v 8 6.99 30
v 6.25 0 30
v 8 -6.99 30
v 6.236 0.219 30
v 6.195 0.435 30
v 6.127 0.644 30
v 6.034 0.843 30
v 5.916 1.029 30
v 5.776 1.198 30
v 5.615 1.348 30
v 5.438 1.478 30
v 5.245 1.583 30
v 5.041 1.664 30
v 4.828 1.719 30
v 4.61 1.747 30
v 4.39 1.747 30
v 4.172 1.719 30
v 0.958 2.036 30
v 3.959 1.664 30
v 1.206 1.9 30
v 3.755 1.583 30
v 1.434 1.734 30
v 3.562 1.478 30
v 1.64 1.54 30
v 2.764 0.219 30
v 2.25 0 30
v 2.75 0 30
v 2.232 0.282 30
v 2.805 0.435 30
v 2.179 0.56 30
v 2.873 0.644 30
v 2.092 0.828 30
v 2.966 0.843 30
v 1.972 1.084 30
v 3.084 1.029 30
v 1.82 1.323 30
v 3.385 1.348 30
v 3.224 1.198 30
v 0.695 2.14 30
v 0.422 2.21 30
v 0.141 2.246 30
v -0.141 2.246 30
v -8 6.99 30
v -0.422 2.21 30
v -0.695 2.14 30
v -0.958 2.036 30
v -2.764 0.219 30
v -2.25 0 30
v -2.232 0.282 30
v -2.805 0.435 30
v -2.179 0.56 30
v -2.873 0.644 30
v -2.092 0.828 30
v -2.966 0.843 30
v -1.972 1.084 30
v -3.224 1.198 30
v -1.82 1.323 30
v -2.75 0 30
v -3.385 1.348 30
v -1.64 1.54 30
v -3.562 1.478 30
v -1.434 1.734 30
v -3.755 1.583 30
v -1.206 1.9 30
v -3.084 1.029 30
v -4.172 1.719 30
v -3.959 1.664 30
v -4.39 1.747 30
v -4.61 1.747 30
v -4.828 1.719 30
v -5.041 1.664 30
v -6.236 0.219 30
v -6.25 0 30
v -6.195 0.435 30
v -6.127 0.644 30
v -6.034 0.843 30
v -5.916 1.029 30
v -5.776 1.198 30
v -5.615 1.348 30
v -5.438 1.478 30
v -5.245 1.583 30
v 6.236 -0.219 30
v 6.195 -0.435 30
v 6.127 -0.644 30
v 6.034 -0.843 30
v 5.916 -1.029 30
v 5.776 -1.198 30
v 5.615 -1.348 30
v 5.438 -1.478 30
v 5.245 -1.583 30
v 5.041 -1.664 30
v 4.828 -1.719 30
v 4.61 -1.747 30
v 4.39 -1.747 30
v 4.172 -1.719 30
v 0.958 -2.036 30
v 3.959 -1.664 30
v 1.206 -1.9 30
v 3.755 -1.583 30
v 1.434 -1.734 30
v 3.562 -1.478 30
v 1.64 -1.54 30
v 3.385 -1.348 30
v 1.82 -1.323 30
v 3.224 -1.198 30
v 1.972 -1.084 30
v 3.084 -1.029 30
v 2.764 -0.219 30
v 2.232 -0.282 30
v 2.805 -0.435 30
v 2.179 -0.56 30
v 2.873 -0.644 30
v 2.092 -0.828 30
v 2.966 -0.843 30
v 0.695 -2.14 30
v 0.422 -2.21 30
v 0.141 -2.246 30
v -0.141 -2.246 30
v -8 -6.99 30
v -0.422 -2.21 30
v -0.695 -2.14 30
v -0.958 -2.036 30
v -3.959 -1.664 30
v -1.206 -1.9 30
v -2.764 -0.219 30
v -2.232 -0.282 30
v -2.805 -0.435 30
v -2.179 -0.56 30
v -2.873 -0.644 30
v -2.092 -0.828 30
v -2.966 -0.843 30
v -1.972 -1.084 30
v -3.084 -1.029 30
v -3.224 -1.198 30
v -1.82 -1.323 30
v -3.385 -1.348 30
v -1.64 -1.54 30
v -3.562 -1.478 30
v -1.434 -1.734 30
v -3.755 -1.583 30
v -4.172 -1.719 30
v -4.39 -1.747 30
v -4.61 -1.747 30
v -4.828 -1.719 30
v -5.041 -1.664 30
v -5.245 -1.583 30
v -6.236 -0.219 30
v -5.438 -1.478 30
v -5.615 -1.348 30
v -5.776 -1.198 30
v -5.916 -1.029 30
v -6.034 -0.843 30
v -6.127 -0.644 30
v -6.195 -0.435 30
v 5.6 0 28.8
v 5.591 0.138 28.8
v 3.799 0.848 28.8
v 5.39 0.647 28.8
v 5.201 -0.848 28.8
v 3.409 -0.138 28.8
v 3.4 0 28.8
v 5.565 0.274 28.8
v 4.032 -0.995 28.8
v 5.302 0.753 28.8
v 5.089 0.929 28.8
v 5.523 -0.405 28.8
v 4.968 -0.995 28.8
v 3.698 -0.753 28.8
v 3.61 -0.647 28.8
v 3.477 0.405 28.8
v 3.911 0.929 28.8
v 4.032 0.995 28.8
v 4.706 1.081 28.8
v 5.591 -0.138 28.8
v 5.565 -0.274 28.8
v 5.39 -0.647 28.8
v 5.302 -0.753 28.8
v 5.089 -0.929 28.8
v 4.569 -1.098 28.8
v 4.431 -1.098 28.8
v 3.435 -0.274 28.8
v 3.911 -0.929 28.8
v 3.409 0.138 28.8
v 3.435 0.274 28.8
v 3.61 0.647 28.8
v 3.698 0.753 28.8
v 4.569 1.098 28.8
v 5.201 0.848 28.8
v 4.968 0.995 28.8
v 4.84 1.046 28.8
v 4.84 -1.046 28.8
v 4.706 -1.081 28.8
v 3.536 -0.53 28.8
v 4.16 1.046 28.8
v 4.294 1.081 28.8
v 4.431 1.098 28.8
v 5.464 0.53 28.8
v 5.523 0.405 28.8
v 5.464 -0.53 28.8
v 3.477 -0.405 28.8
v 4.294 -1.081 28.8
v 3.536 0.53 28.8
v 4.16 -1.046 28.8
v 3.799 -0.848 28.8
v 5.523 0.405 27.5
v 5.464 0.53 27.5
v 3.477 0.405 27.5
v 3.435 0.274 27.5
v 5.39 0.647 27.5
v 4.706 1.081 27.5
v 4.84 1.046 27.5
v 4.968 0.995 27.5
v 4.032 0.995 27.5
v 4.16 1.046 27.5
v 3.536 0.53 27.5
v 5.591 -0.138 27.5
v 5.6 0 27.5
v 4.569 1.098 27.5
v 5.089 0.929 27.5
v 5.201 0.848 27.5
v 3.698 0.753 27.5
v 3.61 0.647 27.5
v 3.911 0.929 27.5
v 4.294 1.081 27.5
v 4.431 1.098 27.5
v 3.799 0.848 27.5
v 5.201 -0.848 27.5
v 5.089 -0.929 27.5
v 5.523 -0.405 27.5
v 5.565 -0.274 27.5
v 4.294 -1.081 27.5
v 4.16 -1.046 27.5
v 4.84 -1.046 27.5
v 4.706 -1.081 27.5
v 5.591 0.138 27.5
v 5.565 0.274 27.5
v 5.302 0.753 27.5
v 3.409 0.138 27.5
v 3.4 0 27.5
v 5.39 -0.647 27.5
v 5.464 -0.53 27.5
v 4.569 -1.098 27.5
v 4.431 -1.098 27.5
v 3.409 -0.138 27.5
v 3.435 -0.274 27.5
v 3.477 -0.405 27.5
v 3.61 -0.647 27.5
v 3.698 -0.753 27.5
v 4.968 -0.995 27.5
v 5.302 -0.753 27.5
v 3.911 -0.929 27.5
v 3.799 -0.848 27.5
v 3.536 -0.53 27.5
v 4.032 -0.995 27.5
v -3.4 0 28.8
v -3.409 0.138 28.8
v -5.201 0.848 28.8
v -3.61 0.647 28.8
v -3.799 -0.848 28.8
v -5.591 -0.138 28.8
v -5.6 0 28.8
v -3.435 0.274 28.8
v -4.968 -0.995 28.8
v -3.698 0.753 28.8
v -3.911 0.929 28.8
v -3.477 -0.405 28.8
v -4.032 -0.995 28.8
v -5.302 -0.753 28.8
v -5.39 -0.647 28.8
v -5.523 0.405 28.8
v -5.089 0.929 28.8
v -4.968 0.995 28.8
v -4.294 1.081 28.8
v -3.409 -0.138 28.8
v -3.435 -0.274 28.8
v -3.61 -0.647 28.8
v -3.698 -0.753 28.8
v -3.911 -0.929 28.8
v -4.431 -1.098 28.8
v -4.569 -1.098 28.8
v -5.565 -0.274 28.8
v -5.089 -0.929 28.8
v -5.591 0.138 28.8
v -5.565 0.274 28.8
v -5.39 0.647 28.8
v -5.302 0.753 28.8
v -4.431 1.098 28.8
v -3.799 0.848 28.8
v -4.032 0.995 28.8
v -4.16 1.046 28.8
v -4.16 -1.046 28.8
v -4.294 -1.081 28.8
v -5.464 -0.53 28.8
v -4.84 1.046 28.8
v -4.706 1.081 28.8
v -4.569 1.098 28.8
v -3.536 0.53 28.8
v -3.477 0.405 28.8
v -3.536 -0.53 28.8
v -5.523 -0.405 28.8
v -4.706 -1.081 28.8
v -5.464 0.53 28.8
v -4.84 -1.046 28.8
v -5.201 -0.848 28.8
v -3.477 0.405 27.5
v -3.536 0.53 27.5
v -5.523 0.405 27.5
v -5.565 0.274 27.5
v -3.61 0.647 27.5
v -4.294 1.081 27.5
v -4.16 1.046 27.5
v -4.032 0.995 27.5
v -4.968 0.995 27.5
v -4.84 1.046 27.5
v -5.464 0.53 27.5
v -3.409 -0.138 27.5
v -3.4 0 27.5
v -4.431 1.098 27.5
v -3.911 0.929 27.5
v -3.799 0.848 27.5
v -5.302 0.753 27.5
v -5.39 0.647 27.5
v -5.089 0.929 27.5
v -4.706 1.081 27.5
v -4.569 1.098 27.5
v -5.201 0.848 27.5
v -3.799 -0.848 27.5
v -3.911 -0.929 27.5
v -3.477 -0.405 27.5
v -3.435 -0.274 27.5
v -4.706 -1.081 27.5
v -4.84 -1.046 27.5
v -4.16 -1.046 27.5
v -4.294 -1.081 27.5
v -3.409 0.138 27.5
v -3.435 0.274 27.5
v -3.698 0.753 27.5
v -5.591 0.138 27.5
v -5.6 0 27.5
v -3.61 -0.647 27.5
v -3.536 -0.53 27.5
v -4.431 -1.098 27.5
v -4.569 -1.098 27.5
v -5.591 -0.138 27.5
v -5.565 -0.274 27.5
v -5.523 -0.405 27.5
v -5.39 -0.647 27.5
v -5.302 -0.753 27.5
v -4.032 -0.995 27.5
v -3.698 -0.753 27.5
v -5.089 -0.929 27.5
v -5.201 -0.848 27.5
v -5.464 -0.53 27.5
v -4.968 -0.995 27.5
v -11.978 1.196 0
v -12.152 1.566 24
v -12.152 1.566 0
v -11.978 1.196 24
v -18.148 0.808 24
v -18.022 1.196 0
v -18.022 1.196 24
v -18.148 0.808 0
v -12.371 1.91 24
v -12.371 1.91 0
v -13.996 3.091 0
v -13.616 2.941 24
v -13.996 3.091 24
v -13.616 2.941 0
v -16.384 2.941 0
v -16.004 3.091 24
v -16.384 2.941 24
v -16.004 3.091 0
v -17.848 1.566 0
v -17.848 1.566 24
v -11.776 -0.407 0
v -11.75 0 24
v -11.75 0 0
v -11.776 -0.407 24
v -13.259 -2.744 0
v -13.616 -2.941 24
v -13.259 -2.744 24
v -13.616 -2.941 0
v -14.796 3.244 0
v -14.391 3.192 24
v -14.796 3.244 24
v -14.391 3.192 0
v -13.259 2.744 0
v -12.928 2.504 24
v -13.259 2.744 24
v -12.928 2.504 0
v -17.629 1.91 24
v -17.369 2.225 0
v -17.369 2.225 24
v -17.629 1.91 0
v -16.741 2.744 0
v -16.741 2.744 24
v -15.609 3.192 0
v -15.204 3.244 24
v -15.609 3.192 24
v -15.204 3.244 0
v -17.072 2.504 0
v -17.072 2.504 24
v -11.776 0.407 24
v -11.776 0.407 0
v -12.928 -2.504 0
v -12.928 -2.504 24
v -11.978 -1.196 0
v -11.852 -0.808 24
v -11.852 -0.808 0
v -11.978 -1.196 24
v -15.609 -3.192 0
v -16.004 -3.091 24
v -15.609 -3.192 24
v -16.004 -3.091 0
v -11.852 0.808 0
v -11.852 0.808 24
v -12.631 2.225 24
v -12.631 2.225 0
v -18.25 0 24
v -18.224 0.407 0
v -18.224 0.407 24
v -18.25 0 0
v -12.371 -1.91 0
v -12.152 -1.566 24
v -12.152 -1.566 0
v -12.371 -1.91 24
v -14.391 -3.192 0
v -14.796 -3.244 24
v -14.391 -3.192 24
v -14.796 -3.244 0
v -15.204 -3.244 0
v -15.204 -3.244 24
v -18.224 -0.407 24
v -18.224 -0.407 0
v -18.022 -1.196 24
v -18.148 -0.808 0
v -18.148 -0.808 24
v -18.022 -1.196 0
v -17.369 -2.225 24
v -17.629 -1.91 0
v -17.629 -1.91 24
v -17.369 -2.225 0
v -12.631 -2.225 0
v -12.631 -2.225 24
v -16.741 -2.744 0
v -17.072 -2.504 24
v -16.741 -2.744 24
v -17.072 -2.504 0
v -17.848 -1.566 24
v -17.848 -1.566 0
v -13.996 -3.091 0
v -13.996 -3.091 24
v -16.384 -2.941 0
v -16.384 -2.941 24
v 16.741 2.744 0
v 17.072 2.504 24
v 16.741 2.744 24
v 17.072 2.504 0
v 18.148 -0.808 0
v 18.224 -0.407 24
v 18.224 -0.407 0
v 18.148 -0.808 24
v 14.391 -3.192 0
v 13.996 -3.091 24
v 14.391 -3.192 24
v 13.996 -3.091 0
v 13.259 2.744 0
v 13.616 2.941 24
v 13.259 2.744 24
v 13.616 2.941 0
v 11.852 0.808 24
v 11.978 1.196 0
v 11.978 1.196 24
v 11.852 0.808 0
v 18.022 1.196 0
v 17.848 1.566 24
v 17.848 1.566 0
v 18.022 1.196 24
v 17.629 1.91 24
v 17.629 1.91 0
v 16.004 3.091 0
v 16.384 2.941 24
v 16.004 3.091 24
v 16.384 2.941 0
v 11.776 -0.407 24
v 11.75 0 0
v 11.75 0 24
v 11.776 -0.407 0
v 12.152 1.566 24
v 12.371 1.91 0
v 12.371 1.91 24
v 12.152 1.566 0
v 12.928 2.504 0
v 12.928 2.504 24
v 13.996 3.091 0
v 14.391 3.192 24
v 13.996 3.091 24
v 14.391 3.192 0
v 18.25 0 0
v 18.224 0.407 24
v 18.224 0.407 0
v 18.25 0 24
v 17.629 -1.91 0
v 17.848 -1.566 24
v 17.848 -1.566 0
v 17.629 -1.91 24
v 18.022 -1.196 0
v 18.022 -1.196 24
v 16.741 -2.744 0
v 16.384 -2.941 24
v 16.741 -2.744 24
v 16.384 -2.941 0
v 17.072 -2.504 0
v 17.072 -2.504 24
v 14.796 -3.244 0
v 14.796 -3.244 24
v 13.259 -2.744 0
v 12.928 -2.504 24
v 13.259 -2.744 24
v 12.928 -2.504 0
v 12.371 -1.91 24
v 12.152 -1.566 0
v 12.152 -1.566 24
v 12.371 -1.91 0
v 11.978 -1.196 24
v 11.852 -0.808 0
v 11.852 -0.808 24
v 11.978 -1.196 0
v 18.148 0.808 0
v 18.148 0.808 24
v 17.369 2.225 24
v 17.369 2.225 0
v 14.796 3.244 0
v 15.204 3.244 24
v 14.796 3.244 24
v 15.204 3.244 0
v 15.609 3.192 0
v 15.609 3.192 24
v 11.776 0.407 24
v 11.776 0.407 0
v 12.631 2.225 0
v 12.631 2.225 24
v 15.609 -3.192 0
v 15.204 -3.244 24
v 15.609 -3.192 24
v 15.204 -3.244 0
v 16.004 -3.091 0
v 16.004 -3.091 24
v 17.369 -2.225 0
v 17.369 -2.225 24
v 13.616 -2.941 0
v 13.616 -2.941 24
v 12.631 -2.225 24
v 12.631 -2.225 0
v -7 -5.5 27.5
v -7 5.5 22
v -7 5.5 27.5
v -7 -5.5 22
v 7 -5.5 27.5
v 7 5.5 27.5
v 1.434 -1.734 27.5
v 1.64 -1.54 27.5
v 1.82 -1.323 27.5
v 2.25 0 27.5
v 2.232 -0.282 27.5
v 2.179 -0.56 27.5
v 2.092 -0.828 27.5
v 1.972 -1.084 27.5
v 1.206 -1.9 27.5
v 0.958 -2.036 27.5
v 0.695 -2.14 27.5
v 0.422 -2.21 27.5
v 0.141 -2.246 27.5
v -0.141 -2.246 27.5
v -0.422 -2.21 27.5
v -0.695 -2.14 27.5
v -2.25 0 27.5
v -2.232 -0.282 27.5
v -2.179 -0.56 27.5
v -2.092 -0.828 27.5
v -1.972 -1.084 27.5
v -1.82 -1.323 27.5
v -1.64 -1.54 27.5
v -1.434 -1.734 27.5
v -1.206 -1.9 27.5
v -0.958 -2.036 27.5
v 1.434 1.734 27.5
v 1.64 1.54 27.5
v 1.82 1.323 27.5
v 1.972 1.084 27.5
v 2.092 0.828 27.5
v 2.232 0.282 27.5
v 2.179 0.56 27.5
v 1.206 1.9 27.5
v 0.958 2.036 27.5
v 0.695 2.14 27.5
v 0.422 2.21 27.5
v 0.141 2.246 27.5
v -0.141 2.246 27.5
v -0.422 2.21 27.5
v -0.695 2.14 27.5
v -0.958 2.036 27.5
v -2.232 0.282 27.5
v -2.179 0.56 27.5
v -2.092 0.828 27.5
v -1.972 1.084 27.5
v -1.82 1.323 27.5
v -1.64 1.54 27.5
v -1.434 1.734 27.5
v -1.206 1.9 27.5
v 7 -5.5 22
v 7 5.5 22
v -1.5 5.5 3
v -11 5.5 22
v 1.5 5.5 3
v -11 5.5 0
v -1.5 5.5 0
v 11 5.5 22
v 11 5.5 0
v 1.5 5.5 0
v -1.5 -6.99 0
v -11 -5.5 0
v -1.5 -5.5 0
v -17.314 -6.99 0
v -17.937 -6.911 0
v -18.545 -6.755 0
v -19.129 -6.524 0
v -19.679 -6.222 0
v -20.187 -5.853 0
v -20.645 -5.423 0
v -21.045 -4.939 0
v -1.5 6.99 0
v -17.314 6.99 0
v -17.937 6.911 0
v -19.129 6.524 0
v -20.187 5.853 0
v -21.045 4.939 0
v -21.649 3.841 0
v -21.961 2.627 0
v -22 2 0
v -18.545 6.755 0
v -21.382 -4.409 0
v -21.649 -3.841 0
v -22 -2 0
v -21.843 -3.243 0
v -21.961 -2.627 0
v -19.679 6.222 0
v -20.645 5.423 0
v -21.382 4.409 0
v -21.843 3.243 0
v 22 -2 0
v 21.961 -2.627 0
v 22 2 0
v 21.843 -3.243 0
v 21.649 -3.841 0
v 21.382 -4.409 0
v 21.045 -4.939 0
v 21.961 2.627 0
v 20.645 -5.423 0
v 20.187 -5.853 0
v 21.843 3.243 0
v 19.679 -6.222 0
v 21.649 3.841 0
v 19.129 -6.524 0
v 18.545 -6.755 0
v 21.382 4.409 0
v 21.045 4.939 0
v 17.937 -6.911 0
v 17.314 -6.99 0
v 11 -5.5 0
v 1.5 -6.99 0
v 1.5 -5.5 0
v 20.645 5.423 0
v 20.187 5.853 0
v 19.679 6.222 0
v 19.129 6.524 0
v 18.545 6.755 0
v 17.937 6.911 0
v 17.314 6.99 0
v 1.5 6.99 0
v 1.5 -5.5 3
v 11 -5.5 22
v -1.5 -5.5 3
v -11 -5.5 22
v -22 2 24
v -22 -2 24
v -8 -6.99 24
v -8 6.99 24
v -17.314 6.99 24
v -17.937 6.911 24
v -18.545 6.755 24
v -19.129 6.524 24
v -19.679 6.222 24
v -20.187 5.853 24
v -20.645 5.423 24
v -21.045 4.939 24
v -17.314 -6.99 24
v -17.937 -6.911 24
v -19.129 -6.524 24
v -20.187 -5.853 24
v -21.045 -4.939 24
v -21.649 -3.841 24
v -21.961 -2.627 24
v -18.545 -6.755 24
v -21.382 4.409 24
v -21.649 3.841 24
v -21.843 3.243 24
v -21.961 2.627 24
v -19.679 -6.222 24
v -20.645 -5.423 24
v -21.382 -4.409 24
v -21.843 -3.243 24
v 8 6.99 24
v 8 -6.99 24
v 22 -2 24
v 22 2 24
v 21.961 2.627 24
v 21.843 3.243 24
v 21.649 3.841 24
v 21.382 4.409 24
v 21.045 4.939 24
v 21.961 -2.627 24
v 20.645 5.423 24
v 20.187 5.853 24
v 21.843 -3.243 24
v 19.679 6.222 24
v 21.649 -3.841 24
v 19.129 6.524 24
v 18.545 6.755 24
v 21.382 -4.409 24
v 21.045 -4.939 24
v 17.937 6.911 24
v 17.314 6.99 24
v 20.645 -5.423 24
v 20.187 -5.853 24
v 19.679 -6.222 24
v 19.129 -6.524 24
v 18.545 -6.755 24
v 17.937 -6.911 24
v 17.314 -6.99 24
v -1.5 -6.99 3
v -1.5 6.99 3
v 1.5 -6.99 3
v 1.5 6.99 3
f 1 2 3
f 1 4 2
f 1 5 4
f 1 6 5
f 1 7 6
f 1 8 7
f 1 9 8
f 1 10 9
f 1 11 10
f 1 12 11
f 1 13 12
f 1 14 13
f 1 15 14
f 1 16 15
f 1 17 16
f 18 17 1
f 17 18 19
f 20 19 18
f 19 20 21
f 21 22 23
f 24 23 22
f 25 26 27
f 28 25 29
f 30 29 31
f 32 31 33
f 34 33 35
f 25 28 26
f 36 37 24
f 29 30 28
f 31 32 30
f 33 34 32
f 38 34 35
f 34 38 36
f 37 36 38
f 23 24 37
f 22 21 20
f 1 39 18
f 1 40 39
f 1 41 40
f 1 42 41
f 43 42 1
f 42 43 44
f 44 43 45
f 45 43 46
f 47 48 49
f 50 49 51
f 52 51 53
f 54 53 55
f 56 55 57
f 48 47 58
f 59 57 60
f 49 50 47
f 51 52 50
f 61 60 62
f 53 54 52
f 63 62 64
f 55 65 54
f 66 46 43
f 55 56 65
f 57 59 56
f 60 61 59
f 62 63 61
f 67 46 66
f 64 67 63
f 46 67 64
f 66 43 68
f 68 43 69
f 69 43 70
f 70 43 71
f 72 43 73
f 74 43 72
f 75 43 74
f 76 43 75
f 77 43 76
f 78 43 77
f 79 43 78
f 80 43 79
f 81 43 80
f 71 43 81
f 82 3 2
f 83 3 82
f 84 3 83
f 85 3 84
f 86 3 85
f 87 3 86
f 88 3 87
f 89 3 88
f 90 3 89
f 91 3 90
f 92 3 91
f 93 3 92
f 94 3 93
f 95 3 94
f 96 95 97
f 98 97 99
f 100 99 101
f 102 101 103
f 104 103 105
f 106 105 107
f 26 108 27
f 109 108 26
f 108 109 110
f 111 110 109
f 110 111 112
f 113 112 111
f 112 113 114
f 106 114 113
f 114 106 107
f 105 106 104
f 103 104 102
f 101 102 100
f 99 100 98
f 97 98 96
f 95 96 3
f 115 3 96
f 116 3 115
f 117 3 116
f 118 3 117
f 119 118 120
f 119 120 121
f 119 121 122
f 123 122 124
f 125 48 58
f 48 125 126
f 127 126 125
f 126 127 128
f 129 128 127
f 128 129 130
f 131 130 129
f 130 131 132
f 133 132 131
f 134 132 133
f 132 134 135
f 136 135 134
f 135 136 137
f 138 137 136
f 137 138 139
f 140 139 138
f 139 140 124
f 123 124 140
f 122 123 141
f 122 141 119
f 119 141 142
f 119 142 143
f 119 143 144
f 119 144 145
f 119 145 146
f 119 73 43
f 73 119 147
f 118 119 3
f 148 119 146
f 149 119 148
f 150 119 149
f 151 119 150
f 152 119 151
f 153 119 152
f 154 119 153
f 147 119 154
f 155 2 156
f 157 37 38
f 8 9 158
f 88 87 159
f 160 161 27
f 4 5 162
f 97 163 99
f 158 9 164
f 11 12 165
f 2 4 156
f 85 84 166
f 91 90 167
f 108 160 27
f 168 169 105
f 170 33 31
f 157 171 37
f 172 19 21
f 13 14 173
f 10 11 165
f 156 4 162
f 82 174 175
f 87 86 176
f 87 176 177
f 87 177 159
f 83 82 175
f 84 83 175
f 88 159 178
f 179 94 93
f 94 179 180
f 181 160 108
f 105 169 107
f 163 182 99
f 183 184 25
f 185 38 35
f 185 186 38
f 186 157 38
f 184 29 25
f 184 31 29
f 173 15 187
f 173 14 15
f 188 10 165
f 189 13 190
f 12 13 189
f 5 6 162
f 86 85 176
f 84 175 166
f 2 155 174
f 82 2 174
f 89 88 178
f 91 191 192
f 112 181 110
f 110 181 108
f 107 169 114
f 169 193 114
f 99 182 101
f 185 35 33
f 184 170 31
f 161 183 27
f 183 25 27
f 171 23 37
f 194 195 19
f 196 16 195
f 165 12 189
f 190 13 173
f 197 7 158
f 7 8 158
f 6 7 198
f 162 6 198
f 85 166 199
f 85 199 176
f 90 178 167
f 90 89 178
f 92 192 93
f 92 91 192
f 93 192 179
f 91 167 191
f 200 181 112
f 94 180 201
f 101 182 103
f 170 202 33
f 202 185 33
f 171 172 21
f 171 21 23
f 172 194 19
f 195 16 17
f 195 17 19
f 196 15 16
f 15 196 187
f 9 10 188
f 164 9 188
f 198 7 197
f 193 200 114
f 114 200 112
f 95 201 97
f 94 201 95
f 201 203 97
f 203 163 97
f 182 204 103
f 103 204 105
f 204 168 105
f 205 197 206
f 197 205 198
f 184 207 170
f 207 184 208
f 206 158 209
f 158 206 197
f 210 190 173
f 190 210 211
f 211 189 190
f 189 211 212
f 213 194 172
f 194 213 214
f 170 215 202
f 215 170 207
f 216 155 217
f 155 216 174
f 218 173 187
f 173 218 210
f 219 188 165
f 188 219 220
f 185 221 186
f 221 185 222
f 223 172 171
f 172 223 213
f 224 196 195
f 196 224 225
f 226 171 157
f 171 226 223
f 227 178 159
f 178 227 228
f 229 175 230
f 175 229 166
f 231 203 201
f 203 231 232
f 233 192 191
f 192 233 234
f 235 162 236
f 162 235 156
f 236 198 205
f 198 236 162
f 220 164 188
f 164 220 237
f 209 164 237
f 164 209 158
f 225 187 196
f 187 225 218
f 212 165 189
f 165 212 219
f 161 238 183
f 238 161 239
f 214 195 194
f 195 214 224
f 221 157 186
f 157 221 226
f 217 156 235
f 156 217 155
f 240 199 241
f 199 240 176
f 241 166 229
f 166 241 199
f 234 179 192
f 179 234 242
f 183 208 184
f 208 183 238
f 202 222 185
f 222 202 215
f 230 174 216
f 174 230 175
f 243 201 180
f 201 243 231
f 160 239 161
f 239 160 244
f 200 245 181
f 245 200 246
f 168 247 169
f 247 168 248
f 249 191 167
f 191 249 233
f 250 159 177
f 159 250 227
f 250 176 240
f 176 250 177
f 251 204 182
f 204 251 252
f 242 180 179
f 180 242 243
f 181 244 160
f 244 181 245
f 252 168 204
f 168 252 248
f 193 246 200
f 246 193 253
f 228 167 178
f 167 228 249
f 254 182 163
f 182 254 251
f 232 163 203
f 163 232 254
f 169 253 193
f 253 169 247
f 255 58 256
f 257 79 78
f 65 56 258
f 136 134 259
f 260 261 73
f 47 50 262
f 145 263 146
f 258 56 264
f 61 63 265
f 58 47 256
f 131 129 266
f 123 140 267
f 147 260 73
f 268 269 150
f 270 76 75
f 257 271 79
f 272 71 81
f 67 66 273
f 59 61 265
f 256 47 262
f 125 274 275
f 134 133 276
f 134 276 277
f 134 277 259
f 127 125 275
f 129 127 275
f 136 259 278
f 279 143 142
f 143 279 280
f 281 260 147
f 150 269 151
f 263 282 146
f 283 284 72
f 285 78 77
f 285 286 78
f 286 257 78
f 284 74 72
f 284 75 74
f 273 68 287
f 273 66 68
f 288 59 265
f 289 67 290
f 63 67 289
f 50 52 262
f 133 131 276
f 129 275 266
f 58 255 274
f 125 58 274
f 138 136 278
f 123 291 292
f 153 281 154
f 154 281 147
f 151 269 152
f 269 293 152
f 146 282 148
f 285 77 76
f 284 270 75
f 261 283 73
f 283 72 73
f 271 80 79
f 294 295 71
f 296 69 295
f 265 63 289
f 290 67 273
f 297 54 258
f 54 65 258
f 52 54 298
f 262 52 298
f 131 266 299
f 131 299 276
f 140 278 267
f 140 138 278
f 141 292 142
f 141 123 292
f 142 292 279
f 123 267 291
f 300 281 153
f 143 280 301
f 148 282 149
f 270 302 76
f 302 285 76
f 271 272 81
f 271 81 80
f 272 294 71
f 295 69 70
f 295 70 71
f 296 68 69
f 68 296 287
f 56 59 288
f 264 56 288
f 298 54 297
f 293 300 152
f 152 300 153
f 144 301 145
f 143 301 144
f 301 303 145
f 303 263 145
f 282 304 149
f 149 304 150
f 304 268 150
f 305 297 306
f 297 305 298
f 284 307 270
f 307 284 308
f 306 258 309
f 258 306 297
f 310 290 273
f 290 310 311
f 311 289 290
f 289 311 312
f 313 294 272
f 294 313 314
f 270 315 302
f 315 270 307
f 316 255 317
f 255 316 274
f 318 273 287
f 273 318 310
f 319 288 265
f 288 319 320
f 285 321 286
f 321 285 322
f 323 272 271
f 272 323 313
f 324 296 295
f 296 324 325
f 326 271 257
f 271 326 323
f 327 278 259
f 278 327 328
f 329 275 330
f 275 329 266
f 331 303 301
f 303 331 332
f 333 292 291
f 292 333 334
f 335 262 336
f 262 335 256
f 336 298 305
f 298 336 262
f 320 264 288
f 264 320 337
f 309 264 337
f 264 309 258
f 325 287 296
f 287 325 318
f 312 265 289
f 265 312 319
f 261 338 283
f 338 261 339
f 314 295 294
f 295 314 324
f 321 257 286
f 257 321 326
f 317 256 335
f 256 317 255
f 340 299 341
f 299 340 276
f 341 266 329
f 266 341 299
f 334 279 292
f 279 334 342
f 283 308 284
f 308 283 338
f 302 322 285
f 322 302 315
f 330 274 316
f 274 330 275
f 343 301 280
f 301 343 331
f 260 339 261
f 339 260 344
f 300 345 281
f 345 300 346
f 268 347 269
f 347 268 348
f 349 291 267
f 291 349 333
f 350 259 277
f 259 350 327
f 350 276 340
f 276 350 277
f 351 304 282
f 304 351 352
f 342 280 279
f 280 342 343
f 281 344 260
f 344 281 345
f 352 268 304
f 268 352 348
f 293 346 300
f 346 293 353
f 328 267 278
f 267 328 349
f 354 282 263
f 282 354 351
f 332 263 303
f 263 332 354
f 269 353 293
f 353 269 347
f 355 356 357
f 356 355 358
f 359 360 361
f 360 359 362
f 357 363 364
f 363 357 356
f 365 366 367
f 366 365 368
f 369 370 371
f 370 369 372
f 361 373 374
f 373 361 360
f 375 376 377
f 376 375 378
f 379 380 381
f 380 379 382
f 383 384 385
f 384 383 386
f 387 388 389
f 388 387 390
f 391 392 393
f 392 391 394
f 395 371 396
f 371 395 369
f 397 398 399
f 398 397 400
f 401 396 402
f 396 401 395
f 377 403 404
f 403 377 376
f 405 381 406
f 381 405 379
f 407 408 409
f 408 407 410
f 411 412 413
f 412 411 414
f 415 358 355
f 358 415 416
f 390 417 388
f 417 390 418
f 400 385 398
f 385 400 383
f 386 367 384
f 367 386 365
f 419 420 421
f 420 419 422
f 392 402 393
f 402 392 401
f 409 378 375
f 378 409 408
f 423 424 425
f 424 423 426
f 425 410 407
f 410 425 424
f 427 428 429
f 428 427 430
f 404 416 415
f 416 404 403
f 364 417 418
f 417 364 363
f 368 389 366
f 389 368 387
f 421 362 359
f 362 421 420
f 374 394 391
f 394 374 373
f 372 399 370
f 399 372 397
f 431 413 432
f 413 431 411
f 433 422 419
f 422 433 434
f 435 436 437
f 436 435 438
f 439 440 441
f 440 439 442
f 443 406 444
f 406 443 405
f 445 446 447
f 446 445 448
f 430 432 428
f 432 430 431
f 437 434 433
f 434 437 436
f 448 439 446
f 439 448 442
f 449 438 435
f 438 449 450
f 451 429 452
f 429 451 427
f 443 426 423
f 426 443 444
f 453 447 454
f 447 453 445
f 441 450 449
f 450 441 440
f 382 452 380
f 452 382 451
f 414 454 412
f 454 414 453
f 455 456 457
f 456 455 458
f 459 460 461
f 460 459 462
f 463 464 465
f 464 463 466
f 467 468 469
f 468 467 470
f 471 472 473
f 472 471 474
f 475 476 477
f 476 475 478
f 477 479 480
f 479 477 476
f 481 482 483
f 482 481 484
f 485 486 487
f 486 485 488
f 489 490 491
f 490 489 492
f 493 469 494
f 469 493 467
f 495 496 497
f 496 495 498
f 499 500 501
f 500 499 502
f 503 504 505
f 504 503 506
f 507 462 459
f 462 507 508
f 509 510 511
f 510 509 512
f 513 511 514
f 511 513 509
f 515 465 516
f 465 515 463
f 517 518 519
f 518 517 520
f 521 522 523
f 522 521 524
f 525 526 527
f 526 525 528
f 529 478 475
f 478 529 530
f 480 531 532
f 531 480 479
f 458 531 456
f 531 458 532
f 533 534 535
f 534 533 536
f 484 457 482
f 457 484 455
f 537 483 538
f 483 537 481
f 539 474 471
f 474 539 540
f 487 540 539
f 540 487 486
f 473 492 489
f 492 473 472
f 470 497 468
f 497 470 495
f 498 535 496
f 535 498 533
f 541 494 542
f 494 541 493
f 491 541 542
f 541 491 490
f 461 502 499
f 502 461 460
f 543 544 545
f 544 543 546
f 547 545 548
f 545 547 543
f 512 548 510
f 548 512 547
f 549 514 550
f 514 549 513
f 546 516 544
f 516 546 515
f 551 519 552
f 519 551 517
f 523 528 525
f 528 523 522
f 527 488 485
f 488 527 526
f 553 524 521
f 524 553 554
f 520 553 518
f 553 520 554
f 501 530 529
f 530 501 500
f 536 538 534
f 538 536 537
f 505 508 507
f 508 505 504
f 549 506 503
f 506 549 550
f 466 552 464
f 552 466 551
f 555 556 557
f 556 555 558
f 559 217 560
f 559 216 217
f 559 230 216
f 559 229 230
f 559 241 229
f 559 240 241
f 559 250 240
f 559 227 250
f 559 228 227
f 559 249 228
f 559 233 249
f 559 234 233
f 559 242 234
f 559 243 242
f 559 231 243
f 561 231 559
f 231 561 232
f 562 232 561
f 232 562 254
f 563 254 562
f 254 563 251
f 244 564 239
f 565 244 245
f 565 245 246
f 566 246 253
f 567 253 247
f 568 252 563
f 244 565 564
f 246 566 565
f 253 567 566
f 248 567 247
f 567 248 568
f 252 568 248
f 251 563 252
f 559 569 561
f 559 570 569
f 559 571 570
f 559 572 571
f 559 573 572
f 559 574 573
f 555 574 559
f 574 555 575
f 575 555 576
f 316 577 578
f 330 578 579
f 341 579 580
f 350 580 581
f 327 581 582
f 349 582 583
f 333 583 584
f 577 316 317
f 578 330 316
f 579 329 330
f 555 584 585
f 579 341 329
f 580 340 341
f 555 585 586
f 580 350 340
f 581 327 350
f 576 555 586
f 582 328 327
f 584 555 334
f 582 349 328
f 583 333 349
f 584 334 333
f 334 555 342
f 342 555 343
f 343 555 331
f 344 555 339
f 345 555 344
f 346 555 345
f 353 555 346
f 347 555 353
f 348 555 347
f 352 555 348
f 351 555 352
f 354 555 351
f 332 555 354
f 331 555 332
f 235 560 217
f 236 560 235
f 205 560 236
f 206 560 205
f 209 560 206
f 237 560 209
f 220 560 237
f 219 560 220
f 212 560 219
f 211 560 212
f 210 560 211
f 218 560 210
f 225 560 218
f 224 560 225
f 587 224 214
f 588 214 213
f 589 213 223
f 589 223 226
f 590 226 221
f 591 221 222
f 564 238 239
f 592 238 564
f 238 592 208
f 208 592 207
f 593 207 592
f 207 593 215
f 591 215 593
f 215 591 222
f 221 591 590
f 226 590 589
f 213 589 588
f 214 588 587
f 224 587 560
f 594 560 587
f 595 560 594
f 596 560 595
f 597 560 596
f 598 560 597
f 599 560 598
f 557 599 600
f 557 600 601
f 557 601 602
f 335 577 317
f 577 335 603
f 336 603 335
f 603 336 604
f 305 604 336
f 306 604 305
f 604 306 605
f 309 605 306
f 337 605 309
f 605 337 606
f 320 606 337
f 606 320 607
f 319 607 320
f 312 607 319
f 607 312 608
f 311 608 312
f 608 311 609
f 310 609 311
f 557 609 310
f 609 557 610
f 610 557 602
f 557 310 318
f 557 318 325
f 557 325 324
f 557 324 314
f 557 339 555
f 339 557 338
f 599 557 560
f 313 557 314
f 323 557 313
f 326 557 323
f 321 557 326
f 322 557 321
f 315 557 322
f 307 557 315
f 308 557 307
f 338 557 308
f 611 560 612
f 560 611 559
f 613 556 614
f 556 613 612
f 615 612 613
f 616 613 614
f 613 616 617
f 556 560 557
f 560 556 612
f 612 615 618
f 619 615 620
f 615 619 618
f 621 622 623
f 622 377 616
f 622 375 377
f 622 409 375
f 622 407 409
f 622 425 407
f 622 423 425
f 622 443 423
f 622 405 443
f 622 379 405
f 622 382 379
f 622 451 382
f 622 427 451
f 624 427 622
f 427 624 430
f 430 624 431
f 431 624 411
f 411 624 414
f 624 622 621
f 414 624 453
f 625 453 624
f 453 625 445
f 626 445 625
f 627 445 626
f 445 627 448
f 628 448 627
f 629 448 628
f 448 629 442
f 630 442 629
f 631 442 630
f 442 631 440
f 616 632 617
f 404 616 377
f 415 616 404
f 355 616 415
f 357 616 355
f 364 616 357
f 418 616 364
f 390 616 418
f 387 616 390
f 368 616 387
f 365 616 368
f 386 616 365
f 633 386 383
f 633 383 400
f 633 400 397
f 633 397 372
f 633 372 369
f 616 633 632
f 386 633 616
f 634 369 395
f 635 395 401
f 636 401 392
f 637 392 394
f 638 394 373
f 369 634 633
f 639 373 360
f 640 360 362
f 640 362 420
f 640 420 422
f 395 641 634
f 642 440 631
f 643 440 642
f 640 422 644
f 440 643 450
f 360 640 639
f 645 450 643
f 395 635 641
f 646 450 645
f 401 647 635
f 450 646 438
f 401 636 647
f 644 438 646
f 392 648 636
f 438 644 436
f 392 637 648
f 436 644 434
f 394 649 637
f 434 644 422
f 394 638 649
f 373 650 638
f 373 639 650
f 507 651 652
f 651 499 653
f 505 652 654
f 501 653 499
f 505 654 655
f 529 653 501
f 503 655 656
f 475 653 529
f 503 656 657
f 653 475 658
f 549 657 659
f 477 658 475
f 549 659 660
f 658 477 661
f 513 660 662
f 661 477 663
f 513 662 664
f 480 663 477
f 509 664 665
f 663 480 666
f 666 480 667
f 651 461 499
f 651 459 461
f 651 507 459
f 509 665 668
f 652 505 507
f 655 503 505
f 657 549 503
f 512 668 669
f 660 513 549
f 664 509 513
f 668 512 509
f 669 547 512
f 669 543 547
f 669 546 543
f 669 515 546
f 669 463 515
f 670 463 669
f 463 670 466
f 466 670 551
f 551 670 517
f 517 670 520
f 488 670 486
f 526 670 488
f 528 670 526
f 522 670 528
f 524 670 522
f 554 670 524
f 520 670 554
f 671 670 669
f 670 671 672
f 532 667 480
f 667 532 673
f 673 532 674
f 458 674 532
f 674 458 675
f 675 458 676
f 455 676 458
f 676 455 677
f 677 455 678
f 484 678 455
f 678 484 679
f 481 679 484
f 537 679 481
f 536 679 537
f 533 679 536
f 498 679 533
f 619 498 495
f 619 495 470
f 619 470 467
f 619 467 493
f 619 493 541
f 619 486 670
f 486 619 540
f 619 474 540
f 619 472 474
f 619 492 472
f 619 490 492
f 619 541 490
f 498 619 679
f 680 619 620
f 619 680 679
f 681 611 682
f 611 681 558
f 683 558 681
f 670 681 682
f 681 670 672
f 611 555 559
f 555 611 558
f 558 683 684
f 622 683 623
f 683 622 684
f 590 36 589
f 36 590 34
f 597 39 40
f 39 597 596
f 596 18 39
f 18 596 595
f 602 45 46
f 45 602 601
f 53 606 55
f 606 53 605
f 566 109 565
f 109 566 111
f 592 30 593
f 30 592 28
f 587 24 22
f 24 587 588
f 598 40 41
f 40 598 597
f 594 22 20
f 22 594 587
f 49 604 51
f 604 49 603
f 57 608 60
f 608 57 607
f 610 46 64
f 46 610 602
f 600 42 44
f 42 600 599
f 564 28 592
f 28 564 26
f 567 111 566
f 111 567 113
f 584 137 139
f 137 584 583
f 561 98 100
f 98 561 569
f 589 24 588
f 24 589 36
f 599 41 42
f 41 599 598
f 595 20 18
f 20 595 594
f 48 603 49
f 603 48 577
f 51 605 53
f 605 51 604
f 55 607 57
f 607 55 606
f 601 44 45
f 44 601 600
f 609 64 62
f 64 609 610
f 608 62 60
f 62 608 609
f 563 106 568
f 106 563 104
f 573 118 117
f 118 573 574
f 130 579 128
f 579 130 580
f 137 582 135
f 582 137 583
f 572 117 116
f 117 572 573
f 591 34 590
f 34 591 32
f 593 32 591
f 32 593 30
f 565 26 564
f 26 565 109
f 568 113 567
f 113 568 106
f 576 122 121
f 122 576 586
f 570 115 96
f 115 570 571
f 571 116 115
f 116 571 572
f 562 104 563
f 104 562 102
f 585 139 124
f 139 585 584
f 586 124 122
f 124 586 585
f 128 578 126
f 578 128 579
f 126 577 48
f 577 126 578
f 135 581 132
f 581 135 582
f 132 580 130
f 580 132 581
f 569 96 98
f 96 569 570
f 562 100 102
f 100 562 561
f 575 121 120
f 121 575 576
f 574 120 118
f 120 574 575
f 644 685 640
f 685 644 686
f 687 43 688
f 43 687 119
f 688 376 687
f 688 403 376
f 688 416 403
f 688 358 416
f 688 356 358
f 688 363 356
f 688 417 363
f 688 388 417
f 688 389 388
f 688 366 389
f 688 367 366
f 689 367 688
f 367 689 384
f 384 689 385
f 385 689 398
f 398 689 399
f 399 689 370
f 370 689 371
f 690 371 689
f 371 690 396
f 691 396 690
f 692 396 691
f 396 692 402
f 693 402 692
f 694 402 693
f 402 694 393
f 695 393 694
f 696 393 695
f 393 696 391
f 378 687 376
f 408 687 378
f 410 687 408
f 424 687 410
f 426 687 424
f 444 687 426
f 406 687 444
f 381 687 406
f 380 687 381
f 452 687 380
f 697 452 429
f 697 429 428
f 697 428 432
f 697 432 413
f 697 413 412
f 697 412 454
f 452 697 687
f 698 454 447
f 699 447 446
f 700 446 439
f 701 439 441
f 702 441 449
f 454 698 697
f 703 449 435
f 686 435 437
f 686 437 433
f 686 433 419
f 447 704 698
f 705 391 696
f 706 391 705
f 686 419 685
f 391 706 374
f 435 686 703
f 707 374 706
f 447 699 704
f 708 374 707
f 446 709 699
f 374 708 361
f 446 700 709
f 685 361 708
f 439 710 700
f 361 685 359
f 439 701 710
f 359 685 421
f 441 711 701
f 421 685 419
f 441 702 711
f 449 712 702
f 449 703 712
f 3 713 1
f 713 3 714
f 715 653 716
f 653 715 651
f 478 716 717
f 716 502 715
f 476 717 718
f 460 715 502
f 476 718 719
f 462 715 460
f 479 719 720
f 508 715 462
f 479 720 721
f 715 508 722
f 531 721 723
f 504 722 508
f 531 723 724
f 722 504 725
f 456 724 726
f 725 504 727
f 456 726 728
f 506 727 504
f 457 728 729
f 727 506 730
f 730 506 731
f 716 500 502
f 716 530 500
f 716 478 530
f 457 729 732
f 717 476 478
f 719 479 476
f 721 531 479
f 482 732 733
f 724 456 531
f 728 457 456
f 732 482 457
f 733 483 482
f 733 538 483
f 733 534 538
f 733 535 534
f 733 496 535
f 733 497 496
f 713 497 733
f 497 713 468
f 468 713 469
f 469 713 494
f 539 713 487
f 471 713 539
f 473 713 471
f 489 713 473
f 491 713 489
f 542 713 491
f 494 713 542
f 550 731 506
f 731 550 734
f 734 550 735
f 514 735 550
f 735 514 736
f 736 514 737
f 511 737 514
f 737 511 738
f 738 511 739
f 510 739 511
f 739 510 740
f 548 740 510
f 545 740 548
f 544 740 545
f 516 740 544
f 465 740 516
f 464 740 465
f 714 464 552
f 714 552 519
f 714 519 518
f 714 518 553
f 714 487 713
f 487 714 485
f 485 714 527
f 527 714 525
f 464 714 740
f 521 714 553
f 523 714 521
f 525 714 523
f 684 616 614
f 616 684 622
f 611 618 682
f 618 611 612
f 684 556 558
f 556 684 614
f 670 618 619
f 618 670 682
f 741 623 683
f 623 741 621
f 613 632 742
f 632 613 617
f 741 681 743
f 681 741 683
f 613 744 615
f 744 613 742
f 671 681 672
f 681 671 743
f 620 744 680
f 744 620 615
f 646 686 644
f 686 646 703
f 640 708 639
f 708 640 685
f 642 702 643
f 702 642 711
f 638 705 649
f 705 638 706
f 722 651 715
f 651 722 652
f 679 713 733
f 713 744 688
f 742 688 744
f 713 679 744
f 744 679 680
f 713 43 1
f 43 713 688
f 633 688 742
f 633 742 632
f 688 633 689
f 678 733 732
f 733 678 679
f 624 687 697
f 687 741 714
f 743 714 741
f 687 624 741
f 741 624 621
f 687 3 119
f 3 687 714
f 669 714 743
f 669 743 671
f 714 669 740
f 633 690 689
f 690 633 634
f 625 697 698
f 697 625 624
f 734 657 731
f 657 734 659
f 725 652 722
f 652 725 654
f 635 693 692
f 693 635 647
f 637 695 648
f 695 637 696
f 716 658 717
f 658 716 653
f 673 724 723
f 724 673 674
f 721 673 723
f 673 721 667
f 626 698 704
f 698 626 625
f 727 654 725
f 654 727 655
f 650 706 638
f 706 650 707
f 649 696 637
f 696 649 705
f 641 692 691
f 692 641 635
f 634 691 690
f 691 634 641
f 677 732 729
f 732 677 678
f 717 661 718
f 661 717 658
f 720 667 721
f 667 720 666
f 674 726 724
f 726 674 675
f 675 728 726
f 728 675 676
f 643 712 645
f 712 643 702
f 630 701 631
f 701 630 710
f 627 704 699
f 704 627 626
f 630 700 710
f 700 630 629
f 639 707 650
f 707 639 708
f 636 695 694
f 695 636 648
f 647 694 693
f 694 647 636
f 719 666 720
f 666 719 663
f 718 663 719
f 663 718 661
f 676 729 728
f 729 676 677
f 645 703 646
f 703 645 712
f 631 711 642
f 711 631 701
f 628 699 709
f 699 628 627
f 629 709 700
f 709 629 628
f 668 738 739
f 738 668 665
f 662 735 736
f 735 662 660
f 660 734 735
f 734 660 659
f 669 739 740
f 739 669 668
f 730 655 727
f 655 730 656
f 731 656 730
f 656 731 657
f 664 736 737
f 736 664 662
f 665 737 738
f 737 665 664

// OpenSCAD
$fn = 50;


difference() {
	union() {
		hull() {
			translate(v = [-17.0000000000, 2.0000000000, 0]) {
				cylinder(h = 30, r = 5);
			}
			translate(v = [17.0000000000, 2.0000000000, 0]) {
				cylinder(h = 30, r = 5);
			}
			translate(v = [-17.0000000000, -2.0000000000, 0]) {
				cylinder(h = 30, r = 5);
			}
			translate(v = [17.0000000000, -2.0000000000, 0]) {
				cylinder(h = 30, r = 5);
			}
		}
	}
	union() {
		translate(v = [4.5000000000, 0, 30]) {
			rotate(a = [0, 0, 0]) {
				difference() {
					union() {
						translate(v = [0, 0, -4.0000000000]) {
							cylinder(h = 4, r = 0.8500000000);
						}
						translate(v = [0, 0, -1.2000000000]) {
							cylinder(h = 1.2000000000, r1 = 1.1000000000, r2 = 1.7500000000);
						}
						translate(v = [0, 0, -4.0000000000]) {
							cylinder(h = 4, r = 1.1000000000);
						}
						translate(v = [0, 0, -4.0000000000]) {
							cylinder(h = 4, r = 0.8500000000);
						}
					}
					union();
				}
			}
		}
		translate(v = [-4.5000000000, 0, 30]) {
			rotate(a = [0, 0, 0]) {
				difference() {
					union() {
						translate(v = [0, 0, -4.0000000000]) {
							cylinder(h = 4, r = 0.8500000000);
						}
						translate(v = [0, 0, -1.2000000000]) {
							cylinder(h = 1.2000000000, r1 = 1.1000000000, r2 = 1.7500000000);
						}
						translate(v = [0, 0, -4.0000000000]) {
							cylinder(h = 4, r = 1.1000000000);
						}
						translate(v = [0, 0, -4.0000000000]) {
							cylinder(h = 4, r = 0.8500000000);
						}
					}
					union();
				}
			}
		}
		translate(v = [-15.0000000000, 0.0000000000, -100.0000000000]) {
			cylinder(h = 200, r = 3.2500000000);
		}
		translate(v = [15.0000000000, 0.0000000000, -100.0000000000]) {
			cylinder(h = 200, r = 3.2500000000);
		}
		translate(v = [15.0000000000, 0.0000000000, -100.0000000000]) {
			cylinder(h = 200, r = 3.2500000000);
		}
		translate(v = [-15.0000000000, 0.0000000000, -100.0000000000]) {
			cylinder(h = 200, r = 1.8000000000);
		}
		translate(v = [15.0000000000, 0.0000000000, -100.0000000000]) {
			cylinder(h = 200, r = 1.8000000000);
		}
		translate(v = [-15.0000000000, 0.0000000000, -100.0000000000]) {
			cylinder(h = 200, r = 1.8000000000);
		}
		translate(v = [15.0000000000, 0.0000000000, -100.0000000000]) {
			cylinder(h = 200, r = 1.8000000000);
		}
		translate(v = [-15.0000000000, 0.0000000000, -100.0000000000]) {
			cylinder(h = 200, r = 1.8000000000);
		}
		translate(v = [15.0000000000, 0.0000000000, -100.0000000000]) {
			cylinder(h = 200, r = 1.8000000000);
		}
		#translate(v = [-7.0000000000, -5.5000000000, 0]) {
			cube(size = [14, 11, 27.5000000000]);
		}
		cylinder(h = 30, r = 2.2500000000);
		translate(v = [-22.0000000000, -7.0000000000, 24]) {
			cube(size = [14, 14, 6]);
		}
		translate(v = [8.0000000000, -7.0000000000, 24]) {
			cube(size = [14, 14, 6]);
		}
		translate(v = [-11.0000000000, -5.5000000000, 0]) {
			cube(size = [22, 11, 22]);
		}
		translate(v = [-1.5000000000, -22.5000000000, 0]) {
			cube(size = [3, 45, 3]);
		}
	}
}
